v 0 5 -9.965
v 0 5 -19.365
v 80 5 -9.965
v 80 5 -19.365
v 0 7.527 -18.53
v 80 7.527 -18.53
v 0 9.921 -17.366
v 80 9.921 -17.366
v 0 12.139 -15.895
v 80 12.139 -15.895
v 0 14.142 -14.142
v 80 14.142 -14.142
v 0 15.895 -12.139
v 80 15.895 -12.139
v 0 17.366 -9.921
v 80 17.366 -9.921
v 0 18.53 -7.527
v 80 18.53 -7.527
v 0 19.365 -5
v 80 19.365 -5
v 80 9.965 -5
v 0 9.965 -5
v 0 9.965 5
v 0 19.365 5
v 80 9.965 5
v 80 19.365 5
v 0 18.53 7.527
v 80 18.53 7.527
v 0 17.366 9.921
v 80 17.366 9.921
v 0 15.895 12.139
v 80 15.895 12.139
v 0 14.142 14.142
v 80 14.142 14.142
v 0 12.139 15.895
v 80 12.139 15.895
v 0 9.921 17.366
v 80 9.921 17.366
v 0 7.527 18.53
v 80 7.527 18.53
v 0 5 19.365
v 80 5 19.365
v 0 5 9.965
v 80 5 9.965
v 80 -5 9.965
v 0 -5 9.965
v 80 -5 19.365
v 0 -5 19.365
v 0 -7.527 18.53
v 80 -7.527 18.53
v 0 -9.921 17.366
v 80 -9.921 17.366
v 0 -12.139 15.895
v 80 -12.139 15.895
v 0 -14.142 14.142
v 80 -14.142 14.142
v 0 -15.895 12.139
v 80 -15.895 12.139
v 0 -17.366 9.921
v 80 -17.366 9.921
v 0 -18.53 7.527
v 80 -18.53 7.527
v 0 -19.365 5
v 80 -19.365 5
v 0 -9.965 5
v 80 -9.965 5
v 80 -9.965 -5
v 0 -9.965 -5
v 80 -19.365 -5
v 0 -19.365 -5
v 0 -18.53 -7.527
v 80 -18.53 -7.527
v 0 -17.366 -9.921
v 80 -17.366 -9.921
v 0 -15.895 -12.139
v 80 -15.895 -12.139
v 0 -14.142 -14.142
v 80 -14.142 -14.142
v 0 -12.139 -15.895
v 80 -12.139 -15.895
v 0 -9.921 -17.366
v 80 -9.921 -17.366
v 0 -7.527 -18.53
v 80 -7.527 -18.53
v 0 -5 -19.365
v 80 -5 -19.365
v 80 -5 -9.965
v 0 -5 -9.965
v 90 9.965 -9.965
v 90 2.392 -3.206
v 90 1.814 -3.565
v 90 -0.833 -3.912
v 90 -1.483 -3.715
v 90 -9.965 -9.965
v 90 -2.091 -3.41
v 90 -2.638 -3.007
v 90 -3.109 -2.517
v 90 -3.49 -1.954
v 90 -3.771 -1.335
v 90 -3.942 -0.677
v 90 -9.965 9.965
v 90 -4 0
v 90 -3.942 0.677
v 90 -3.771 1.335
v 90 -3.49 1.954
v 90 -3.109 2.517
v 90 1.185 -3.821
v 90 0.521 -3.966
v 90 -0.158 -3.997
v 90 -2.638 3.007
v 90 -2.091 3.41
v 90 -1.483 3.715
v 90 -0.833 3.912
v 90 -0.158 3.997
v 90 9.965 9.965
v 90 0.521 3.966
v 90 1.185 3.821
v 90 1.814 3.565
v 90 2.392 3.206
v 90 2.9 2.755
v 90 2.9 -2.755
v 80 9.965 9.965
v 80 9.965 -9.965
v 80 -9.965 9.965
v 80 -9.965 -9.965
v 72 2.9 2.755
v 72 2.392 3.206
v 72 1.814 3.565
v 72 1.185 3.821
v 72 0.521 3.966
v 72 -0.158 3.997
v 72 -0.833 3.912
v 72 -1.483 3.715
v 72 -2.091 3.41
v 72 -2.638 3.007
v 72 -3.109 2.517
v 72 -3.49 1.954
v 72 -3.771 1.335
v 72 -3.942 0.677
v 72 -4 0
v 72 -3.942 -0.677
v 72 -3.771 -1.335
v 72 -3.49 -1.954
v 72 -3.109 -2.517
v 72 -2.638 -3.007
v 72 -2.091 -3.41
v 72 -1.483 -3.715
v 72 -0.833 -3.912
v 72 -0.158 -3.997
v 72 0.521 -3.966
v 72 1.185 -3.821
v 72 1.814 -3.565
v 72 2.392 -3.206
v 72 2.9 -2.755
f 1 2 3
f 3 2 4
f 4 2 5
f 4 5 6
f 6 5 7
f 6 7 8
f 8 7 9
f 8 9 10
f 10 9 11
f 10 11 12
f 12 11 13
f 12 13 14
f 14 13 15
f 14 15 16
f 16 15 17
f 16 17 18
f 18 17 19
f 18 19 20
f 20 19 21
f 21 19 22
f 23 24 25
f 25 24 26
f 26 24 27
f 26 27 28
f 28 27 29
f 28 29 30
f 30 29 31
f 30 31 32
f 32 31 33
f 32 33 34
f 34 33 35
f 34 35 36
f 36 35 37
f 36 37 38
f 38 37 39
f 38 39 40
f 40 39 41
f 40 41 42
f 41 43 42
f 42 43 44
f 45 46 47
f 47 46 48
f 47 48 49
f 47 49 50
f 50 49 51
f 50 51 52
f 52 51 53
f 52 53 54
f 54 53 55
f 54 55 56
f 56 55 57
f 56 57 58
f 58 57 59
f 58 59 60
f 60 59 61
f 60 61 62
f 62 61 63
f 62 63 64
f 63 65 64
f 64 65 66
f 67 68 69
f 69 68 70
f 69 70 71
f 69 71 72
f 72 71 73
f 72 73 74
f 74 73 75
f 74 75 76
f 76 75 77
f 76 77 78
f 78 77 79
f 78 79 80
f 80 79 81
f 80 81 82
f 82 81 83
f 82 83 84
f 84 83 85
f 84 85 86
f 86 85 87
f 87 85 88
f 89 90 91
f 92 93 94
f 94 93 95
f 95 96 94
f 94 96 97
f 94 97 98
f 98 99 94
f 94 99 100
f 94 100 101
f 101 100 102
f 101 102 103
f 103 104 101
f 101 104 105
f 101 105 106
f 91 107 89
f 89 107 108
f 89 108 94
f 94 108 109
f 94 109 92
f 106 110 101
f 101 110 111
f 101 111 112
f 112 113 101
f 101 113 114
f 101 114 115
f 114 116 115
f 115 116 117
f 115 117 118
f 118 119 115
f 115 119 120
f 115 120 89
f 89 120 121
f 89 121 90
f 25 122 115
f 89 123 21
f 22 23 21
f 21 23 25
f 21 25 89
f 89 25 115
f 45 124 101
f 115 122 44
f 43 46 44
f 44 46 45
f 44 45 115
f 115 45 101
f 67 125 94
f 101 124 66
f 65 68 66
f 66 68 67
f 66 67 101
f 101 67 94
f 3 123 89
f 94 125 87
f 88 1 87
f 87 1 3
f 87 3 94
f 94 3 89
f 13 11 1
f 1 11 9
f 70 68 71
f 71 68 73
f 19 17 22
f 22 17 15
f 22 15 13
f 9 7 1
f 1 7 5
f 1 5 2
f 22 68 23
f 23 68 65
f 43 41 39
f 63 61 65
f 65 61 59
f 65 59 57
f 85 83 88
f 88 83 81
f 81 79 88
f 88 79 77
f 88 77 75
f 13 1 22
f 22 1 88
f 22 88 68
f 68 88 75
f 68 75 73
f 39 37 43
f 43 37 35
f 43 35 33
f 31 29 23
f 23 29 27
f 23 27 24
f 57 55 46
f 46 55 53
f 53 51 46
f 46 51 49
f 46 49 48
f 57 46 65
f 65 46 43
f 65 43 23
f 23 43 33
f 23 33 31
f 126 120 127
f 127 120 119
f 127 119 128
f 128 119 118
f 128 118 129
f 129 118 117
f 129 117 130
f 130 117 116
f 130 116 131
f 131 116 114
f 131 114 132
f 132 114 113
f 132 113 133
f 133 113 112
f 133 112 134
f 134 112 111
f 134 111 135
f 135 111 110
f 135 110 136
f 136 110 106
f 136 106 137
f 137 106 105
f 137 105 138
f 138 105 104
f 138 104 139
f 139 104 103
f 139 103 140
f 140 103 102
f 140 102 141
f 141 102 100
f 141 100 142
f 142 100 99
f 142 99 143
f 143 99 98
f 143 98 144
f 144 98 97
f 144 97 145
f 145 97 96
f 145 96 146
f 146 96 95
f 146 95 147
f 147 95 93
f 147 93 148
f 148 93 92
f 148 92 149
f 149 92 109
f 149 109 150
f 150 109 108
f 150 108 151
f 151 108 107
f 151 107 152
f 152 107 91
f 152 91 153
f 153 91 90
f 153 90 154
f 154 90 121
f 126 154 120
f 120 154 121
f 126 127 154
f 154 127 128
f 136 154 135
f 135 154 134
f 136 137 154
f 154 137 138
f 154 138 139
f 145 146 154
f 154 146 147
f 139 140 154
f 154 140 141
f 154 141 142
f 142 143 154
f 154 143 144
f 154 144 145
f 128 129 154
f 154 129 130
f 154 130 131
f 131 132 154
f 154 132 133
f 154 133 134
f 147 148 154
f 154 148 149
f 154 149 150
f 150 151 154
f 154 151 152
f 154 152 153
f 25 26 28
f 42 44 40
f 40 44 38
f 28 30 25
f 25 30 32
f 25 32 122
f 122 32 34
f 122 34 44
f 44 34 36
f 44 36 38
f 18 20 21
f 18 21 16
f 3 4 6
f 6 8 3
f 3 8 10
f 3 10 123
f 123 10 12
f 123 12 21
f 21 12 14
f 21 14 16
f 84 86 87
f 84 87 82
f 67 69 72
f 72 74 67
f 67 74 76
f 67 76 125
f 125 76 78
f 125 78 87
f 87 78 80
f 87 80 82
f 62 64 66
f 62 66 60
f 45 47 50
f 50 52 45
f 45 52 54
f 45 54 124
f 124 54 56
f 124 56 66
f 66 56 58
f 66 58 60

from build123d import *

# Parameters (mm, degrees)
EXTRUDED_CONNECTOR_DEPTH = 90
KEY_CUT_DEPTH            = 18
CUT_EXTRUDE2_DEPTH       = 10


with BuildPart() as part:
    # Sketch1 → Extruded Connector (new body)
    with BuildSketch(Plane(origin=(0, 0, 0), x_dir=(0, 0, -1), z_dir=(1, 0, 0))):
        with BuildLine():
            ThreePointArc((-19.364916731, -5), (-14.142135624, -14.142135624), (-5, -19.364916731))
            Line((-5, -19.364916731), (-5, -9.964916731))
            Line((-5, -9.964916731), (5, -9.964916731))
            Line((5, -9.964916731), (5, -19.364916731))
            ThreePointArc((5, -19.364916731), (14.142135624, -14.142135624), (19.364916731, -5))
            Line((19.364916731, -5), (9.964916731, -5))
            Line((9.964916731, -5), (9.964916731, 5))
            Line((9.964916731, 5), (19.364916731, 5))
            ThreePointArc((19.364916731, 5), (14.142135624, 14.142135624), (5, 19.364916731))
            Line((5, 19.364916731), (5, 9.964916731))
            Line((5, 9.964916731), (-5, 9.964916731))
            Line((-5, 9.964916731), (-5, 19.364916731))
            ThreePointArc((-5, 19.364916731), (-14.142135624, 14.142135624), (-19.364916731, 5))
            Line((-19.364916731, 5), (-9.964916731, 5))
            Line((-9.964916731, 5), (-9.964916731, -5))
            Line((-9.964916731, -5), (-19.364916731, -5))
        make_face()
    extrude(amount=EXTRUDED_CONNECTOR_DEPTH)

    # Sketch10 → Key Cut (cut)
    with BuildSketch(Plane(origin=(90, 0, 0), x_dir=(0, 0, -1), z_dir=(1, 0, 0))):
        with BuildLine():
            Line((-2.754995463, 2.9), (2.754995463, 2.9))
            ThreePointArc((2.754995463, 2.9), (0, -4), (-2.754995463, 2.9))
        make_face()
    extrude(amount=-KEY_CUT_DEPTH, mode=Mode.SUBTRACT)

    # Sketch11 → Cut-Extrude2 (cut)
    with BuildSketch(Plane(origin=(90, 0, 0), x_dir=(0, 0, -1), z_dir=(1, 0, 0))):
        with BuildLine():
            Line((-9.964916731, 9.964916731), (-9.964916731, 5))
            Line((-9.964916731, 5), (-19.364916731, 5))
            ThreePointArc((-19.364916731, 5), (-14.142135624, 14.142135624), (-5, 19.364916731))
            Line((-5, 19.364916731), (-5, 9.964916731))
            Line((-5, 9.964916731), (-9.964916731, 9.964916731))
        make_face()
        with BuildLine():
            Line((9.964916731, 9.964916731), (5, 9.964916731))
            Line((5, 9.964916731), (5, 19.364916731))
            ThreePointArc((5, 19.364916731), (14.142135624, 14.142135624), (19.364916731, 5))
            Line((19.364916731, 5), (9.964916731, 5))
            Line((9.964916731, 5), (9.964916731, 9.964916731))
        make_face()
        with BuildLine():
            Line((9.964916731, -9.964916731), (9.964916731, -5))
            Line((9.964916731, -5), (19.364916731, -5))
            ThreePointArc((19.364916731, -5), (14.142135624, -14.142135624), (5, -19.364916731))
            Line((5, -19.364916731), (5, -9.964916731))
            Line((5, -9.964916731), (9.964916731, -9.964916731))
        make_face()
        with BuildLine():
            Line((-9.964916731, -9.964916731), (-5, -9.964916731))
            Line((-5, -9.964916731), (-5, -19.364916731))
            ThreePointArc((-5, -19.364916731), (-14.142135624, -14.142135624), (-19.364916731, -5))
            Line((-19.364916731, -5), (-9.964916731, -5))
            Line((-9.964916731, -5), (-9.964916731, -9.964916731))
        make_face()
    extrude(amount=-CUT_EXTRUDE2_DEPTH, mode=Mode.SUBTRACT)


solid = part.part
